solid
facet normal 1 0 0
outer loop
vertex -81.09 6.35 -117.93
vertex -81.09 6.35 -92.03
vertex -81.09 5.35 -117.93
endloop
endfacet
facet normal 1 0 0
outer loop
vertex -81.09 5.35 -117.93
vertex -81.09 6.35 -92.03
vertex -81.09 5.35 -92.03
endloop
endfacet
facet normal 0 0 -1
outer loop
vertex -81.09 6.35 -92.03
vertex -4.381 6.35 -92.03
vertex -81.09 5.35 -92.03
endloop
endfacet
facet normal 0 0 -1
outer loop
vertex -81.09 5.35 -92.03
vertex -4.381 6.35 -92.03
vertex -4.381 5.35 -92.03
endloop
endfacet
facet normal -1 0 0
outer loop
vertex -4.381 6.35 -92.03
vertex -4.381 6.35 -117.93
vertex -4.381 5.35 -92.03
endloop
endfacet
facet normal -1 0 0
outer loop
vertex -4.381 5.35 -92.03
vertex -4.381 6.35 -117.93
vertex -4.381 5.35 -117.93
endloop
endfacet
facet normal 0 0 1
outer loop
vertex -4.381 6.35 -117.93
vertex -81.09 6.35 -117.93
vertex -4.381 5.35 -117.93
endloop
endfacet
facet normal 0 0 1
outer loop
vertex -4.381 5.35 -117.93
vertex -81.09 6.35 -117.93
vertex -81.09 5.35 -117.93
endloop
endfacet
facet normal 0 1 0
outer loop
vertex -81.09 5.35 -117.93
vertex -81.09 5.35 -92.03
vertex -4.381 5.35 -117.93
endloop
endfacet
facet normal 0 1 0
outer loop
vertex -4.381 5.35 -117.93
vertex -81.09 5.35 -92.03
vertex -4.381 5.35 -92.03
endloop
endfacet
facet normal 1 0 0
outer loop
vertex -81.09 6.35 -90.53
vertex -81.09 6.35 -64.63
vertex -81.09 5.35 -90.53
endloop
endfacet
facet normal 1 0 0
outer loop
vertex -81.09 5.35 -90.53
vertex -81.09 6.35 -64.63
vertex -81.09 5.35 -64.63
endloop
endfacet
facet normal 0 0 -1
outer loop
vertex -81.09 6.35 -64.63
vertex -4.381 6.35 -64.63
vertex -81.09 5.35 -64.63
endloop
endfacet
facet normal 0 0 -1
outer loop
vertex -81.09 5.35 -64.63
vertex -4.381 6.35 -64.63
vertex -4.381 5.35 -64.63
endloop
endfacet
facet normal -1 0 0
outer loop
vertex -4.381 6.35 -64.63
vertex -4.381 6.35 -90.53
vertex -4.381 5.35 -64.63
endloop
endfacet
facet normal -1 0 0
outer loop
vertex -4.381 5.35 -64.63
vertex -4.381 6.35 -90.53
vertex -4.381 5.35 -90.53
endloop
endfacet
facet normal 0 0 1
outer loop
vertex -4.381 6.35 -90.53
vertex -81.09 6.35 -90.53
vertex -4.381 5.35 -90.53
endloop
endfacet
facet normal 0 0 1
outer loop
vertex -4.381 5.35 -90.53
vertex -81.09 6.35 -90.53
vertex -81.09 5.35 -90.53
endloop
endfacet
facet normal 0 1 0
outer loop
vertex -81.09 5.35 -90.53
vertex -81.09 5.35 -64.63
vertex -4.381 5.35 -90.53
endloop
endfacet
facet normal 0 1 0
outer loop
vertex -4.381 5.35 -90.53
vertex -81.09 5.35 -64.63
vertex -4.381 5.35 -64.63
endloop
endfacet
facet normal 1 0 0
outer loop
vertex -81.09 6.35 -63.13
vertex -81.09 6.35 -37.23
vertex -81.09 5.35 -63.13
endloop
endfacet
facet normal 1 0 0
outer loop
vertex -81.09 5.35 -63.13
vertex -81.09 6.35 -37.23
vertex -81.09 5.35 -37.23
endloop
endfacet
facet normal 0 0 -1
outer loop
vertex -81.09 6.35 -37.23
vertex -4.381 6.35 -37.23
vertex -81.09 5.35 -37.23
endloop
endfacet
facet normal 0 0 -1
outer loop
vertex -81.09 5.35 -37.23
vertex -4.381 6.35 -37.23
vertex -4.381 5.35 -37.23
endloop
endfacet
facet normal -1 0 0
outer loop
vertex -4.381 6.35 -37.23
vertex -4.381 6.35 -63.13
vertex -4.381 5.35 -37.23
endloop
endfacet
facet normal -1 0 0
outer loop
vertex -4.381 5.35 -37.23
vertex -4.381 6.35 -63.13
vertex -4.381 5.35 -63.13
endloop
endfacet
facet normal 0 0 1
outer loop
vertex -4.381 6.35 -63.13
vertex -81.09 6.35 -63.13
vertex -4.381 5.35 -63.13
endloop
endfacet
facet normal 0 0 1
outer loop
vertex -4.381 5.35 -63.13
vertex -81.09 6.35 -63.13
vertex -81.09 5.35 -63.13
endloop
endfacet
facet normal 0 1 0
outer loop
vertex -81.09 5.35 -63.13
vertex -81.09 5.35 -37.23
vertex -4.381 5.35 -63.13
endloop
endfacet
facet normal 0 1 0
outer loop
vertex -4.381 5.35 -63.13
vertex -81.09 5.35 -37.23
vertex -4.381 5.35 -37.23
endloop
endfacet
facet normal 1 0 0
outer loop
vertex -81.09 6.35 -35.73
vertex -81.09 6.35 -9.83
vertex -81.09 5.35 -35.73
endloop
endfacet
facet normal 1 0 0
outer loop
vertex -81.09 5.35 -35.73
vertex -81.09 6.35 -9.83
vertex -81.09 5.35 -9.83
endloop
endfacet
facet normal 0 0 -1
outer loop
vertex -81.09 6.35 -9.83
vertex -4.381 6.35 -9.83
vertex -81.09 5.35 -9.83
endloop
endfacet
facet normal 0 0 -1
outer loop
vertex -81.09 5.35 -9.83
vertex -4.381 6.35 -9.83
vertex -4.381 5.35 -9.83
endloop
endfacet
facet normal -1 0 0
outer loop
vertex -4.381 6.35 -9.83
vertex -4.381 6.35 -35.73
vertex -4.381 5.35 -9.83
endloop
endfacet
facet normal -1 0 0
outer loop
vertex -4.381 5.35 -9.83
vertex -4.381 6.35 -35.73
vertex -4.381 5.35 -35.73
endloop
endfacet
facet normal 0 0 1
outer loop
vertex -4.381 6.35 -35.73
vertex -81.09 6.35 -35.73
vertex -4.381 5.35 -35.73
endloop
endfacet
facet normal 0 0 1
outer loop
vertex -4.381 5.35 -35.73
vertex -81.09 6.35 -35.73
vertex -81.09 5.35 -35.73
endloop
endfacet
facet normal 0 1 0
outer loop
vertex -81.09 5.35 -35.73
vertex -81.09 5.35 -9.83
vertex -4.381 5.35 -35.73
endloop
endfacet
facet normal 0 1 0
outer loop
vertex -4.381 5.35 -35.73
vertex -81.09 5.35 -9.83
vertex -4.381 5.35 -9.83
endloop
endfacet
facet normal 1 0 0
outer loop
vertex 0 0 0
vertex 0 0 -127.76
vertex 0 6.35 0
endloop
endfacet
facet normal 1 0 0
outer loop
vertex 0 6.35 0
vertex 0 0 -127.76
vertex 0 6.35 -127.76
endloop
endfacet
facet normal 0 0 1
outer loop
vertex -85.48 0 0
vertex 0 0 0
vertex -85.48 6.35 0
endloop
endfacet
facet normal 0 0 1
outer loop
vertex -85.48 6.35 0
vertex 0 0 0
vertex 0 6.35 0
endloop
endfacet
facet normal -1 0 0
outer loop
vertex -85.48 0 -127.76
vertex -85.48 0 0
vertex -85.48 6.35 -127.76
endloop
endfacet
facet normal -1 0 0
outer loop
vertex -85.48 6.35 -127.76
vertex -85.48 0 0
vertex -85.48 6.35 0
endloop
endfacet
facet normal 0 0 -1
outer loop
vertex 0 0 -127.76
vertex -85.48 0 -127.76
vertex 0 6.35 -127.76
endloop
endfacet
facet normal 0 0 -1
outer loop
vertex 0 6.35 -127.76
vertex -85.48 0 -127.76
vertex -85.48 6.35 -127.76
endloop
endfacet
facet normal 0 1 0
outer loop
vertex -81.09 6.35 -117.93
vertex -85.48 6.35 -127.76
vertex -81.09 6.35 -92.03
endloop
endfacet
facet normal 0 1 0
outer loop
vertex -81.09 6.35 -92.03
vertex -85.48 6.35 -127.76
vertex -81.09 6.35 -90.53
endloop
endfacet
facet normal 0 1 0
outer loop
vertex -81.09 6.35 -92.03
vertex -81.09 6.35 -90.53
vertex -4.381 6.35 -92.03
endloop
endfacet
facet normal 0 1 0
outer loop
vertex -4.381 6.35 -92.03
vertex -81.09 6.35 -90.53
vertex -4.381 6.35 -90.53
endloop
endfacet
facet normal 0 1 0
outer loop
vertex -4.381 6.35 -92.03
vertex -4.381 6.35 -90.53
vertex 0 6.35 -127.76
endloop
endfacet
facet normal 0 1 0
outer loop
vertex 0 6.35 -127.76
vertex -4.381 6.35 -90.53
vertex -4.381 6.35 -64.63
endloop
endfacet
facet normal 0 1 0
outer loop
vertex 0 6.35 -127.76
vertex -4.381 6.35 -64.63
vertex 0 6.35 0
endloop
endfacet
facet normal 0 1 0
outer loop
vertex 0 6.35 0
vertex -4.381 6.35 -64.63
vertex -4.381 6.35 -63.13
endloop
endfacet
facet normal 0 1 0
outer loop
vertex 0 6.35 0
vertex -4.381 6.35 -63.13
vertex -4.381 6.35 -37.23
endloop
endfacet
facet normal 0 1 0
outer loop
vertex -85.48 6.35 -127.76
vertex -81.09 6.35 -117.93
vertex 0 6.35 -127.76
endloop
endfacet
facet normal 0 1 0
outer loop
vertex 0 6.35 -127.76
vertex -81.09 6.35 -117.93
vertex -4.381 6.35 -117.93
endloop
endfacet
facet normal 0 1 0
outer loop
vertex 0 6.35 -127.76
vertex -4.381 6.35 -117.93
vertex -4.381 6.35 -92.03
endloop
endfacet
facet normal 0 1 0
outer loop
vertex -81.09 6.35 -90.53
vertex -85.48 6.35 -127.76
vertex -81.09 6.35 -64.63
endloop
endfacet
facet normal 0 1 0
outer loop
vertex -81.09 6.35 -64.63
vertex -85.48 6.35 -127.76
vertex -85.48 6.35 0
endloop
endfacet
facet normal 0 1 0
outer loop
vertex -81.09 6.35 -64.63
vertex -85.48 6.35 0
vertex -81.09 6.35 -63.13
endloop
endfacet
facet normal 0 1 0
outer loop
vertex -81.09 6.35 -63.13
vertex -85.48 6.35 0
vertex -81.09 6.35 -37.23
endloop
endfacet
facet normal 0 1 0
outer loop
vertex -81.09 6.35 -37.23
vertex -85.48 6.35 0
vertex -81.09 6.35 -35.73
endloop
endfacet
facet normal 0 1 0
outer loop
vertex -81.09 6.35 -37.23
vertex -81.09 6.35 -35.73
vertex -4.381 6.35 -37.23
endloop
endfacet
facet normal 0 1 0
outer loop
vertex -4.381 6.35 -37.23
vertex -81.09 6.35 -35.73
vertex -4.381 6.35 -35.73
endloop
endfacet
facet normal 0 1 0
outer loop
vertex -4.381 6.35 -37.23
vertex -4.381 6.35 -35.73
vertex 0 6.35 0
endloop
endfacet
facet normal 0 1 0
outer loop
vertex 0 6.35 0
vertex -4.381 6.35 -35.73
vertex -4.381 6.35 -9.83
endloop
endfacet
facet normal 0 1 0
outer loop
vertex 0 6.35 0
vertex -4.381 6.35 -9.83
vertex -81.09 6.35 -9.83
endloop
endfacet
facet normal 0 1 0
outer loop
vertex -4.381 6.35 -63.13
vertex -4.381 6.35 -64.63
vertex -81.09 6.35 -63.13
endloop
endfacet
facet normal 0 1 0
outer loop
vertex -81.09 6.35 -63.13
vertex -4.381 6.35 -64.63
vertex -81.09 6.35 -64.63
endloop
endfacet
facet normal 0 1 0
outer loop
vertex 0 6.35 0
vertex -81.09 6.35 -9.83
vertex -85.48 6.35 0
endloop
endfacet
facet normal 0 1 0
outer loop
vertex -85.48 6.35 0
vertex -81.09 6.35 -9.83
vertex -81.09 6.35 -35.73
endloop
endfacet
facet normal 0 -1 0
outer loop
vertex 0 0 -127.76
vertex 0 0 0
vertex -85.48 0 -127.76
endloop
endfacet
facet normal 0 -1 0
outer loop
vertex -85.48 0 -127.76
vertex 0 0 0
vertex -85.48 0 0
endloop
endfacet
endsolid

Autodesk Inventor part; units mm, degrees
ref_plane "YZ Plane" through (0, 0, 0) normal (1, 0, 0) x (0, 1, 0)
ref_plane "XZ Plane" through (0, 0, 0) normal (0, 1, 0) x (-1, 0, 0)
ref_plane "XY Plane" through (0, 0, 0) normal (0, 0, 1) x (1, 0, 0)
sketch "Sketch1" plane through (0, 0, 0) normal (0, 1, 0) x (-1, 0, 0)
  line L0 (0, 0) -> (85.48, 0)
  line L1 (85.48, 0) -> (85.48, -127.76)
  line L2 (85.48, -127.76) -> (0, -127.76)
  line L3 (0, -127.76) -> (0, 0)
  line L4 (0, 0) -> (7.0711, -7.0711)
  line L5 (0, 0) -> (10, 0) construction
  circle A0 centre (7.0711, -7.0711) radius 4.7625
  dimension "d0" = 85.48
  dimension "d1" = 127.76
  dimension "offsetDiag" = 10
  dimension "d3" = 45
  dimension "d4" = 9.525
extrude "Extrusion1" add sketch "Sketch1" along normal blind 6.35 contours L0 L1 L2 L3 | A0
sketch "Sketch3" plane through (0, 6.35, 0) normal (0, 1, 0) x (1, 0, 0)
  line L0 (0, 0) -> (0, 127.76) projected
  line L1 (0, 0) -> (-4.3815, 0)
  line L2 (-4.3815, 0) -> (-4.3815, 9.8298)
  line L3 (-4.3815, 9.8298) -> (0, 9.8298)
  line L4 (0, 9.8298) -> (0, 0)
  line L5 (-4.3815, 9.8298) -> (-81.0895, 9.8298)
  line L6 (-81.0895, 9.8298) -> (-81.0895, 35.7298)
  line L7 (-81.0895, 35.7298) -> (-4.3815, 35.7298)
  line L8 (-4.3815, 35.7298) -> (-4.3815, 9.8298)
  line L9 (-81.0895, 35.7298) -> (-82.0895, 35.7298)
  line L10 (-82.0895, 35.7298) -> (-82.0895, 36.7298)
  line L11 (-82.0895, 36.7298) -> (-81.0895, 36.7298)
  line L12 (-81.0895, 36.7298) -> (-81.0895, 35.7298)
  dimension "d23" = 4.3815
  dimension "d24" = 9.8298
  dimension "d25" = 76.708
  dimension "d26" = 25.9
  dimension "d27" = 1
  dimension "d28" = 1
extrude "Extrusion2" cut sketch "Sketch3" against normal blind 1 contours L5 L6 L7 L8
pattern_linear "Rectangular Pattern2" count 4 spacing 27.4 along (0, 0, -1) of "Extrusion2"
properties part number "slide substrate rack"
